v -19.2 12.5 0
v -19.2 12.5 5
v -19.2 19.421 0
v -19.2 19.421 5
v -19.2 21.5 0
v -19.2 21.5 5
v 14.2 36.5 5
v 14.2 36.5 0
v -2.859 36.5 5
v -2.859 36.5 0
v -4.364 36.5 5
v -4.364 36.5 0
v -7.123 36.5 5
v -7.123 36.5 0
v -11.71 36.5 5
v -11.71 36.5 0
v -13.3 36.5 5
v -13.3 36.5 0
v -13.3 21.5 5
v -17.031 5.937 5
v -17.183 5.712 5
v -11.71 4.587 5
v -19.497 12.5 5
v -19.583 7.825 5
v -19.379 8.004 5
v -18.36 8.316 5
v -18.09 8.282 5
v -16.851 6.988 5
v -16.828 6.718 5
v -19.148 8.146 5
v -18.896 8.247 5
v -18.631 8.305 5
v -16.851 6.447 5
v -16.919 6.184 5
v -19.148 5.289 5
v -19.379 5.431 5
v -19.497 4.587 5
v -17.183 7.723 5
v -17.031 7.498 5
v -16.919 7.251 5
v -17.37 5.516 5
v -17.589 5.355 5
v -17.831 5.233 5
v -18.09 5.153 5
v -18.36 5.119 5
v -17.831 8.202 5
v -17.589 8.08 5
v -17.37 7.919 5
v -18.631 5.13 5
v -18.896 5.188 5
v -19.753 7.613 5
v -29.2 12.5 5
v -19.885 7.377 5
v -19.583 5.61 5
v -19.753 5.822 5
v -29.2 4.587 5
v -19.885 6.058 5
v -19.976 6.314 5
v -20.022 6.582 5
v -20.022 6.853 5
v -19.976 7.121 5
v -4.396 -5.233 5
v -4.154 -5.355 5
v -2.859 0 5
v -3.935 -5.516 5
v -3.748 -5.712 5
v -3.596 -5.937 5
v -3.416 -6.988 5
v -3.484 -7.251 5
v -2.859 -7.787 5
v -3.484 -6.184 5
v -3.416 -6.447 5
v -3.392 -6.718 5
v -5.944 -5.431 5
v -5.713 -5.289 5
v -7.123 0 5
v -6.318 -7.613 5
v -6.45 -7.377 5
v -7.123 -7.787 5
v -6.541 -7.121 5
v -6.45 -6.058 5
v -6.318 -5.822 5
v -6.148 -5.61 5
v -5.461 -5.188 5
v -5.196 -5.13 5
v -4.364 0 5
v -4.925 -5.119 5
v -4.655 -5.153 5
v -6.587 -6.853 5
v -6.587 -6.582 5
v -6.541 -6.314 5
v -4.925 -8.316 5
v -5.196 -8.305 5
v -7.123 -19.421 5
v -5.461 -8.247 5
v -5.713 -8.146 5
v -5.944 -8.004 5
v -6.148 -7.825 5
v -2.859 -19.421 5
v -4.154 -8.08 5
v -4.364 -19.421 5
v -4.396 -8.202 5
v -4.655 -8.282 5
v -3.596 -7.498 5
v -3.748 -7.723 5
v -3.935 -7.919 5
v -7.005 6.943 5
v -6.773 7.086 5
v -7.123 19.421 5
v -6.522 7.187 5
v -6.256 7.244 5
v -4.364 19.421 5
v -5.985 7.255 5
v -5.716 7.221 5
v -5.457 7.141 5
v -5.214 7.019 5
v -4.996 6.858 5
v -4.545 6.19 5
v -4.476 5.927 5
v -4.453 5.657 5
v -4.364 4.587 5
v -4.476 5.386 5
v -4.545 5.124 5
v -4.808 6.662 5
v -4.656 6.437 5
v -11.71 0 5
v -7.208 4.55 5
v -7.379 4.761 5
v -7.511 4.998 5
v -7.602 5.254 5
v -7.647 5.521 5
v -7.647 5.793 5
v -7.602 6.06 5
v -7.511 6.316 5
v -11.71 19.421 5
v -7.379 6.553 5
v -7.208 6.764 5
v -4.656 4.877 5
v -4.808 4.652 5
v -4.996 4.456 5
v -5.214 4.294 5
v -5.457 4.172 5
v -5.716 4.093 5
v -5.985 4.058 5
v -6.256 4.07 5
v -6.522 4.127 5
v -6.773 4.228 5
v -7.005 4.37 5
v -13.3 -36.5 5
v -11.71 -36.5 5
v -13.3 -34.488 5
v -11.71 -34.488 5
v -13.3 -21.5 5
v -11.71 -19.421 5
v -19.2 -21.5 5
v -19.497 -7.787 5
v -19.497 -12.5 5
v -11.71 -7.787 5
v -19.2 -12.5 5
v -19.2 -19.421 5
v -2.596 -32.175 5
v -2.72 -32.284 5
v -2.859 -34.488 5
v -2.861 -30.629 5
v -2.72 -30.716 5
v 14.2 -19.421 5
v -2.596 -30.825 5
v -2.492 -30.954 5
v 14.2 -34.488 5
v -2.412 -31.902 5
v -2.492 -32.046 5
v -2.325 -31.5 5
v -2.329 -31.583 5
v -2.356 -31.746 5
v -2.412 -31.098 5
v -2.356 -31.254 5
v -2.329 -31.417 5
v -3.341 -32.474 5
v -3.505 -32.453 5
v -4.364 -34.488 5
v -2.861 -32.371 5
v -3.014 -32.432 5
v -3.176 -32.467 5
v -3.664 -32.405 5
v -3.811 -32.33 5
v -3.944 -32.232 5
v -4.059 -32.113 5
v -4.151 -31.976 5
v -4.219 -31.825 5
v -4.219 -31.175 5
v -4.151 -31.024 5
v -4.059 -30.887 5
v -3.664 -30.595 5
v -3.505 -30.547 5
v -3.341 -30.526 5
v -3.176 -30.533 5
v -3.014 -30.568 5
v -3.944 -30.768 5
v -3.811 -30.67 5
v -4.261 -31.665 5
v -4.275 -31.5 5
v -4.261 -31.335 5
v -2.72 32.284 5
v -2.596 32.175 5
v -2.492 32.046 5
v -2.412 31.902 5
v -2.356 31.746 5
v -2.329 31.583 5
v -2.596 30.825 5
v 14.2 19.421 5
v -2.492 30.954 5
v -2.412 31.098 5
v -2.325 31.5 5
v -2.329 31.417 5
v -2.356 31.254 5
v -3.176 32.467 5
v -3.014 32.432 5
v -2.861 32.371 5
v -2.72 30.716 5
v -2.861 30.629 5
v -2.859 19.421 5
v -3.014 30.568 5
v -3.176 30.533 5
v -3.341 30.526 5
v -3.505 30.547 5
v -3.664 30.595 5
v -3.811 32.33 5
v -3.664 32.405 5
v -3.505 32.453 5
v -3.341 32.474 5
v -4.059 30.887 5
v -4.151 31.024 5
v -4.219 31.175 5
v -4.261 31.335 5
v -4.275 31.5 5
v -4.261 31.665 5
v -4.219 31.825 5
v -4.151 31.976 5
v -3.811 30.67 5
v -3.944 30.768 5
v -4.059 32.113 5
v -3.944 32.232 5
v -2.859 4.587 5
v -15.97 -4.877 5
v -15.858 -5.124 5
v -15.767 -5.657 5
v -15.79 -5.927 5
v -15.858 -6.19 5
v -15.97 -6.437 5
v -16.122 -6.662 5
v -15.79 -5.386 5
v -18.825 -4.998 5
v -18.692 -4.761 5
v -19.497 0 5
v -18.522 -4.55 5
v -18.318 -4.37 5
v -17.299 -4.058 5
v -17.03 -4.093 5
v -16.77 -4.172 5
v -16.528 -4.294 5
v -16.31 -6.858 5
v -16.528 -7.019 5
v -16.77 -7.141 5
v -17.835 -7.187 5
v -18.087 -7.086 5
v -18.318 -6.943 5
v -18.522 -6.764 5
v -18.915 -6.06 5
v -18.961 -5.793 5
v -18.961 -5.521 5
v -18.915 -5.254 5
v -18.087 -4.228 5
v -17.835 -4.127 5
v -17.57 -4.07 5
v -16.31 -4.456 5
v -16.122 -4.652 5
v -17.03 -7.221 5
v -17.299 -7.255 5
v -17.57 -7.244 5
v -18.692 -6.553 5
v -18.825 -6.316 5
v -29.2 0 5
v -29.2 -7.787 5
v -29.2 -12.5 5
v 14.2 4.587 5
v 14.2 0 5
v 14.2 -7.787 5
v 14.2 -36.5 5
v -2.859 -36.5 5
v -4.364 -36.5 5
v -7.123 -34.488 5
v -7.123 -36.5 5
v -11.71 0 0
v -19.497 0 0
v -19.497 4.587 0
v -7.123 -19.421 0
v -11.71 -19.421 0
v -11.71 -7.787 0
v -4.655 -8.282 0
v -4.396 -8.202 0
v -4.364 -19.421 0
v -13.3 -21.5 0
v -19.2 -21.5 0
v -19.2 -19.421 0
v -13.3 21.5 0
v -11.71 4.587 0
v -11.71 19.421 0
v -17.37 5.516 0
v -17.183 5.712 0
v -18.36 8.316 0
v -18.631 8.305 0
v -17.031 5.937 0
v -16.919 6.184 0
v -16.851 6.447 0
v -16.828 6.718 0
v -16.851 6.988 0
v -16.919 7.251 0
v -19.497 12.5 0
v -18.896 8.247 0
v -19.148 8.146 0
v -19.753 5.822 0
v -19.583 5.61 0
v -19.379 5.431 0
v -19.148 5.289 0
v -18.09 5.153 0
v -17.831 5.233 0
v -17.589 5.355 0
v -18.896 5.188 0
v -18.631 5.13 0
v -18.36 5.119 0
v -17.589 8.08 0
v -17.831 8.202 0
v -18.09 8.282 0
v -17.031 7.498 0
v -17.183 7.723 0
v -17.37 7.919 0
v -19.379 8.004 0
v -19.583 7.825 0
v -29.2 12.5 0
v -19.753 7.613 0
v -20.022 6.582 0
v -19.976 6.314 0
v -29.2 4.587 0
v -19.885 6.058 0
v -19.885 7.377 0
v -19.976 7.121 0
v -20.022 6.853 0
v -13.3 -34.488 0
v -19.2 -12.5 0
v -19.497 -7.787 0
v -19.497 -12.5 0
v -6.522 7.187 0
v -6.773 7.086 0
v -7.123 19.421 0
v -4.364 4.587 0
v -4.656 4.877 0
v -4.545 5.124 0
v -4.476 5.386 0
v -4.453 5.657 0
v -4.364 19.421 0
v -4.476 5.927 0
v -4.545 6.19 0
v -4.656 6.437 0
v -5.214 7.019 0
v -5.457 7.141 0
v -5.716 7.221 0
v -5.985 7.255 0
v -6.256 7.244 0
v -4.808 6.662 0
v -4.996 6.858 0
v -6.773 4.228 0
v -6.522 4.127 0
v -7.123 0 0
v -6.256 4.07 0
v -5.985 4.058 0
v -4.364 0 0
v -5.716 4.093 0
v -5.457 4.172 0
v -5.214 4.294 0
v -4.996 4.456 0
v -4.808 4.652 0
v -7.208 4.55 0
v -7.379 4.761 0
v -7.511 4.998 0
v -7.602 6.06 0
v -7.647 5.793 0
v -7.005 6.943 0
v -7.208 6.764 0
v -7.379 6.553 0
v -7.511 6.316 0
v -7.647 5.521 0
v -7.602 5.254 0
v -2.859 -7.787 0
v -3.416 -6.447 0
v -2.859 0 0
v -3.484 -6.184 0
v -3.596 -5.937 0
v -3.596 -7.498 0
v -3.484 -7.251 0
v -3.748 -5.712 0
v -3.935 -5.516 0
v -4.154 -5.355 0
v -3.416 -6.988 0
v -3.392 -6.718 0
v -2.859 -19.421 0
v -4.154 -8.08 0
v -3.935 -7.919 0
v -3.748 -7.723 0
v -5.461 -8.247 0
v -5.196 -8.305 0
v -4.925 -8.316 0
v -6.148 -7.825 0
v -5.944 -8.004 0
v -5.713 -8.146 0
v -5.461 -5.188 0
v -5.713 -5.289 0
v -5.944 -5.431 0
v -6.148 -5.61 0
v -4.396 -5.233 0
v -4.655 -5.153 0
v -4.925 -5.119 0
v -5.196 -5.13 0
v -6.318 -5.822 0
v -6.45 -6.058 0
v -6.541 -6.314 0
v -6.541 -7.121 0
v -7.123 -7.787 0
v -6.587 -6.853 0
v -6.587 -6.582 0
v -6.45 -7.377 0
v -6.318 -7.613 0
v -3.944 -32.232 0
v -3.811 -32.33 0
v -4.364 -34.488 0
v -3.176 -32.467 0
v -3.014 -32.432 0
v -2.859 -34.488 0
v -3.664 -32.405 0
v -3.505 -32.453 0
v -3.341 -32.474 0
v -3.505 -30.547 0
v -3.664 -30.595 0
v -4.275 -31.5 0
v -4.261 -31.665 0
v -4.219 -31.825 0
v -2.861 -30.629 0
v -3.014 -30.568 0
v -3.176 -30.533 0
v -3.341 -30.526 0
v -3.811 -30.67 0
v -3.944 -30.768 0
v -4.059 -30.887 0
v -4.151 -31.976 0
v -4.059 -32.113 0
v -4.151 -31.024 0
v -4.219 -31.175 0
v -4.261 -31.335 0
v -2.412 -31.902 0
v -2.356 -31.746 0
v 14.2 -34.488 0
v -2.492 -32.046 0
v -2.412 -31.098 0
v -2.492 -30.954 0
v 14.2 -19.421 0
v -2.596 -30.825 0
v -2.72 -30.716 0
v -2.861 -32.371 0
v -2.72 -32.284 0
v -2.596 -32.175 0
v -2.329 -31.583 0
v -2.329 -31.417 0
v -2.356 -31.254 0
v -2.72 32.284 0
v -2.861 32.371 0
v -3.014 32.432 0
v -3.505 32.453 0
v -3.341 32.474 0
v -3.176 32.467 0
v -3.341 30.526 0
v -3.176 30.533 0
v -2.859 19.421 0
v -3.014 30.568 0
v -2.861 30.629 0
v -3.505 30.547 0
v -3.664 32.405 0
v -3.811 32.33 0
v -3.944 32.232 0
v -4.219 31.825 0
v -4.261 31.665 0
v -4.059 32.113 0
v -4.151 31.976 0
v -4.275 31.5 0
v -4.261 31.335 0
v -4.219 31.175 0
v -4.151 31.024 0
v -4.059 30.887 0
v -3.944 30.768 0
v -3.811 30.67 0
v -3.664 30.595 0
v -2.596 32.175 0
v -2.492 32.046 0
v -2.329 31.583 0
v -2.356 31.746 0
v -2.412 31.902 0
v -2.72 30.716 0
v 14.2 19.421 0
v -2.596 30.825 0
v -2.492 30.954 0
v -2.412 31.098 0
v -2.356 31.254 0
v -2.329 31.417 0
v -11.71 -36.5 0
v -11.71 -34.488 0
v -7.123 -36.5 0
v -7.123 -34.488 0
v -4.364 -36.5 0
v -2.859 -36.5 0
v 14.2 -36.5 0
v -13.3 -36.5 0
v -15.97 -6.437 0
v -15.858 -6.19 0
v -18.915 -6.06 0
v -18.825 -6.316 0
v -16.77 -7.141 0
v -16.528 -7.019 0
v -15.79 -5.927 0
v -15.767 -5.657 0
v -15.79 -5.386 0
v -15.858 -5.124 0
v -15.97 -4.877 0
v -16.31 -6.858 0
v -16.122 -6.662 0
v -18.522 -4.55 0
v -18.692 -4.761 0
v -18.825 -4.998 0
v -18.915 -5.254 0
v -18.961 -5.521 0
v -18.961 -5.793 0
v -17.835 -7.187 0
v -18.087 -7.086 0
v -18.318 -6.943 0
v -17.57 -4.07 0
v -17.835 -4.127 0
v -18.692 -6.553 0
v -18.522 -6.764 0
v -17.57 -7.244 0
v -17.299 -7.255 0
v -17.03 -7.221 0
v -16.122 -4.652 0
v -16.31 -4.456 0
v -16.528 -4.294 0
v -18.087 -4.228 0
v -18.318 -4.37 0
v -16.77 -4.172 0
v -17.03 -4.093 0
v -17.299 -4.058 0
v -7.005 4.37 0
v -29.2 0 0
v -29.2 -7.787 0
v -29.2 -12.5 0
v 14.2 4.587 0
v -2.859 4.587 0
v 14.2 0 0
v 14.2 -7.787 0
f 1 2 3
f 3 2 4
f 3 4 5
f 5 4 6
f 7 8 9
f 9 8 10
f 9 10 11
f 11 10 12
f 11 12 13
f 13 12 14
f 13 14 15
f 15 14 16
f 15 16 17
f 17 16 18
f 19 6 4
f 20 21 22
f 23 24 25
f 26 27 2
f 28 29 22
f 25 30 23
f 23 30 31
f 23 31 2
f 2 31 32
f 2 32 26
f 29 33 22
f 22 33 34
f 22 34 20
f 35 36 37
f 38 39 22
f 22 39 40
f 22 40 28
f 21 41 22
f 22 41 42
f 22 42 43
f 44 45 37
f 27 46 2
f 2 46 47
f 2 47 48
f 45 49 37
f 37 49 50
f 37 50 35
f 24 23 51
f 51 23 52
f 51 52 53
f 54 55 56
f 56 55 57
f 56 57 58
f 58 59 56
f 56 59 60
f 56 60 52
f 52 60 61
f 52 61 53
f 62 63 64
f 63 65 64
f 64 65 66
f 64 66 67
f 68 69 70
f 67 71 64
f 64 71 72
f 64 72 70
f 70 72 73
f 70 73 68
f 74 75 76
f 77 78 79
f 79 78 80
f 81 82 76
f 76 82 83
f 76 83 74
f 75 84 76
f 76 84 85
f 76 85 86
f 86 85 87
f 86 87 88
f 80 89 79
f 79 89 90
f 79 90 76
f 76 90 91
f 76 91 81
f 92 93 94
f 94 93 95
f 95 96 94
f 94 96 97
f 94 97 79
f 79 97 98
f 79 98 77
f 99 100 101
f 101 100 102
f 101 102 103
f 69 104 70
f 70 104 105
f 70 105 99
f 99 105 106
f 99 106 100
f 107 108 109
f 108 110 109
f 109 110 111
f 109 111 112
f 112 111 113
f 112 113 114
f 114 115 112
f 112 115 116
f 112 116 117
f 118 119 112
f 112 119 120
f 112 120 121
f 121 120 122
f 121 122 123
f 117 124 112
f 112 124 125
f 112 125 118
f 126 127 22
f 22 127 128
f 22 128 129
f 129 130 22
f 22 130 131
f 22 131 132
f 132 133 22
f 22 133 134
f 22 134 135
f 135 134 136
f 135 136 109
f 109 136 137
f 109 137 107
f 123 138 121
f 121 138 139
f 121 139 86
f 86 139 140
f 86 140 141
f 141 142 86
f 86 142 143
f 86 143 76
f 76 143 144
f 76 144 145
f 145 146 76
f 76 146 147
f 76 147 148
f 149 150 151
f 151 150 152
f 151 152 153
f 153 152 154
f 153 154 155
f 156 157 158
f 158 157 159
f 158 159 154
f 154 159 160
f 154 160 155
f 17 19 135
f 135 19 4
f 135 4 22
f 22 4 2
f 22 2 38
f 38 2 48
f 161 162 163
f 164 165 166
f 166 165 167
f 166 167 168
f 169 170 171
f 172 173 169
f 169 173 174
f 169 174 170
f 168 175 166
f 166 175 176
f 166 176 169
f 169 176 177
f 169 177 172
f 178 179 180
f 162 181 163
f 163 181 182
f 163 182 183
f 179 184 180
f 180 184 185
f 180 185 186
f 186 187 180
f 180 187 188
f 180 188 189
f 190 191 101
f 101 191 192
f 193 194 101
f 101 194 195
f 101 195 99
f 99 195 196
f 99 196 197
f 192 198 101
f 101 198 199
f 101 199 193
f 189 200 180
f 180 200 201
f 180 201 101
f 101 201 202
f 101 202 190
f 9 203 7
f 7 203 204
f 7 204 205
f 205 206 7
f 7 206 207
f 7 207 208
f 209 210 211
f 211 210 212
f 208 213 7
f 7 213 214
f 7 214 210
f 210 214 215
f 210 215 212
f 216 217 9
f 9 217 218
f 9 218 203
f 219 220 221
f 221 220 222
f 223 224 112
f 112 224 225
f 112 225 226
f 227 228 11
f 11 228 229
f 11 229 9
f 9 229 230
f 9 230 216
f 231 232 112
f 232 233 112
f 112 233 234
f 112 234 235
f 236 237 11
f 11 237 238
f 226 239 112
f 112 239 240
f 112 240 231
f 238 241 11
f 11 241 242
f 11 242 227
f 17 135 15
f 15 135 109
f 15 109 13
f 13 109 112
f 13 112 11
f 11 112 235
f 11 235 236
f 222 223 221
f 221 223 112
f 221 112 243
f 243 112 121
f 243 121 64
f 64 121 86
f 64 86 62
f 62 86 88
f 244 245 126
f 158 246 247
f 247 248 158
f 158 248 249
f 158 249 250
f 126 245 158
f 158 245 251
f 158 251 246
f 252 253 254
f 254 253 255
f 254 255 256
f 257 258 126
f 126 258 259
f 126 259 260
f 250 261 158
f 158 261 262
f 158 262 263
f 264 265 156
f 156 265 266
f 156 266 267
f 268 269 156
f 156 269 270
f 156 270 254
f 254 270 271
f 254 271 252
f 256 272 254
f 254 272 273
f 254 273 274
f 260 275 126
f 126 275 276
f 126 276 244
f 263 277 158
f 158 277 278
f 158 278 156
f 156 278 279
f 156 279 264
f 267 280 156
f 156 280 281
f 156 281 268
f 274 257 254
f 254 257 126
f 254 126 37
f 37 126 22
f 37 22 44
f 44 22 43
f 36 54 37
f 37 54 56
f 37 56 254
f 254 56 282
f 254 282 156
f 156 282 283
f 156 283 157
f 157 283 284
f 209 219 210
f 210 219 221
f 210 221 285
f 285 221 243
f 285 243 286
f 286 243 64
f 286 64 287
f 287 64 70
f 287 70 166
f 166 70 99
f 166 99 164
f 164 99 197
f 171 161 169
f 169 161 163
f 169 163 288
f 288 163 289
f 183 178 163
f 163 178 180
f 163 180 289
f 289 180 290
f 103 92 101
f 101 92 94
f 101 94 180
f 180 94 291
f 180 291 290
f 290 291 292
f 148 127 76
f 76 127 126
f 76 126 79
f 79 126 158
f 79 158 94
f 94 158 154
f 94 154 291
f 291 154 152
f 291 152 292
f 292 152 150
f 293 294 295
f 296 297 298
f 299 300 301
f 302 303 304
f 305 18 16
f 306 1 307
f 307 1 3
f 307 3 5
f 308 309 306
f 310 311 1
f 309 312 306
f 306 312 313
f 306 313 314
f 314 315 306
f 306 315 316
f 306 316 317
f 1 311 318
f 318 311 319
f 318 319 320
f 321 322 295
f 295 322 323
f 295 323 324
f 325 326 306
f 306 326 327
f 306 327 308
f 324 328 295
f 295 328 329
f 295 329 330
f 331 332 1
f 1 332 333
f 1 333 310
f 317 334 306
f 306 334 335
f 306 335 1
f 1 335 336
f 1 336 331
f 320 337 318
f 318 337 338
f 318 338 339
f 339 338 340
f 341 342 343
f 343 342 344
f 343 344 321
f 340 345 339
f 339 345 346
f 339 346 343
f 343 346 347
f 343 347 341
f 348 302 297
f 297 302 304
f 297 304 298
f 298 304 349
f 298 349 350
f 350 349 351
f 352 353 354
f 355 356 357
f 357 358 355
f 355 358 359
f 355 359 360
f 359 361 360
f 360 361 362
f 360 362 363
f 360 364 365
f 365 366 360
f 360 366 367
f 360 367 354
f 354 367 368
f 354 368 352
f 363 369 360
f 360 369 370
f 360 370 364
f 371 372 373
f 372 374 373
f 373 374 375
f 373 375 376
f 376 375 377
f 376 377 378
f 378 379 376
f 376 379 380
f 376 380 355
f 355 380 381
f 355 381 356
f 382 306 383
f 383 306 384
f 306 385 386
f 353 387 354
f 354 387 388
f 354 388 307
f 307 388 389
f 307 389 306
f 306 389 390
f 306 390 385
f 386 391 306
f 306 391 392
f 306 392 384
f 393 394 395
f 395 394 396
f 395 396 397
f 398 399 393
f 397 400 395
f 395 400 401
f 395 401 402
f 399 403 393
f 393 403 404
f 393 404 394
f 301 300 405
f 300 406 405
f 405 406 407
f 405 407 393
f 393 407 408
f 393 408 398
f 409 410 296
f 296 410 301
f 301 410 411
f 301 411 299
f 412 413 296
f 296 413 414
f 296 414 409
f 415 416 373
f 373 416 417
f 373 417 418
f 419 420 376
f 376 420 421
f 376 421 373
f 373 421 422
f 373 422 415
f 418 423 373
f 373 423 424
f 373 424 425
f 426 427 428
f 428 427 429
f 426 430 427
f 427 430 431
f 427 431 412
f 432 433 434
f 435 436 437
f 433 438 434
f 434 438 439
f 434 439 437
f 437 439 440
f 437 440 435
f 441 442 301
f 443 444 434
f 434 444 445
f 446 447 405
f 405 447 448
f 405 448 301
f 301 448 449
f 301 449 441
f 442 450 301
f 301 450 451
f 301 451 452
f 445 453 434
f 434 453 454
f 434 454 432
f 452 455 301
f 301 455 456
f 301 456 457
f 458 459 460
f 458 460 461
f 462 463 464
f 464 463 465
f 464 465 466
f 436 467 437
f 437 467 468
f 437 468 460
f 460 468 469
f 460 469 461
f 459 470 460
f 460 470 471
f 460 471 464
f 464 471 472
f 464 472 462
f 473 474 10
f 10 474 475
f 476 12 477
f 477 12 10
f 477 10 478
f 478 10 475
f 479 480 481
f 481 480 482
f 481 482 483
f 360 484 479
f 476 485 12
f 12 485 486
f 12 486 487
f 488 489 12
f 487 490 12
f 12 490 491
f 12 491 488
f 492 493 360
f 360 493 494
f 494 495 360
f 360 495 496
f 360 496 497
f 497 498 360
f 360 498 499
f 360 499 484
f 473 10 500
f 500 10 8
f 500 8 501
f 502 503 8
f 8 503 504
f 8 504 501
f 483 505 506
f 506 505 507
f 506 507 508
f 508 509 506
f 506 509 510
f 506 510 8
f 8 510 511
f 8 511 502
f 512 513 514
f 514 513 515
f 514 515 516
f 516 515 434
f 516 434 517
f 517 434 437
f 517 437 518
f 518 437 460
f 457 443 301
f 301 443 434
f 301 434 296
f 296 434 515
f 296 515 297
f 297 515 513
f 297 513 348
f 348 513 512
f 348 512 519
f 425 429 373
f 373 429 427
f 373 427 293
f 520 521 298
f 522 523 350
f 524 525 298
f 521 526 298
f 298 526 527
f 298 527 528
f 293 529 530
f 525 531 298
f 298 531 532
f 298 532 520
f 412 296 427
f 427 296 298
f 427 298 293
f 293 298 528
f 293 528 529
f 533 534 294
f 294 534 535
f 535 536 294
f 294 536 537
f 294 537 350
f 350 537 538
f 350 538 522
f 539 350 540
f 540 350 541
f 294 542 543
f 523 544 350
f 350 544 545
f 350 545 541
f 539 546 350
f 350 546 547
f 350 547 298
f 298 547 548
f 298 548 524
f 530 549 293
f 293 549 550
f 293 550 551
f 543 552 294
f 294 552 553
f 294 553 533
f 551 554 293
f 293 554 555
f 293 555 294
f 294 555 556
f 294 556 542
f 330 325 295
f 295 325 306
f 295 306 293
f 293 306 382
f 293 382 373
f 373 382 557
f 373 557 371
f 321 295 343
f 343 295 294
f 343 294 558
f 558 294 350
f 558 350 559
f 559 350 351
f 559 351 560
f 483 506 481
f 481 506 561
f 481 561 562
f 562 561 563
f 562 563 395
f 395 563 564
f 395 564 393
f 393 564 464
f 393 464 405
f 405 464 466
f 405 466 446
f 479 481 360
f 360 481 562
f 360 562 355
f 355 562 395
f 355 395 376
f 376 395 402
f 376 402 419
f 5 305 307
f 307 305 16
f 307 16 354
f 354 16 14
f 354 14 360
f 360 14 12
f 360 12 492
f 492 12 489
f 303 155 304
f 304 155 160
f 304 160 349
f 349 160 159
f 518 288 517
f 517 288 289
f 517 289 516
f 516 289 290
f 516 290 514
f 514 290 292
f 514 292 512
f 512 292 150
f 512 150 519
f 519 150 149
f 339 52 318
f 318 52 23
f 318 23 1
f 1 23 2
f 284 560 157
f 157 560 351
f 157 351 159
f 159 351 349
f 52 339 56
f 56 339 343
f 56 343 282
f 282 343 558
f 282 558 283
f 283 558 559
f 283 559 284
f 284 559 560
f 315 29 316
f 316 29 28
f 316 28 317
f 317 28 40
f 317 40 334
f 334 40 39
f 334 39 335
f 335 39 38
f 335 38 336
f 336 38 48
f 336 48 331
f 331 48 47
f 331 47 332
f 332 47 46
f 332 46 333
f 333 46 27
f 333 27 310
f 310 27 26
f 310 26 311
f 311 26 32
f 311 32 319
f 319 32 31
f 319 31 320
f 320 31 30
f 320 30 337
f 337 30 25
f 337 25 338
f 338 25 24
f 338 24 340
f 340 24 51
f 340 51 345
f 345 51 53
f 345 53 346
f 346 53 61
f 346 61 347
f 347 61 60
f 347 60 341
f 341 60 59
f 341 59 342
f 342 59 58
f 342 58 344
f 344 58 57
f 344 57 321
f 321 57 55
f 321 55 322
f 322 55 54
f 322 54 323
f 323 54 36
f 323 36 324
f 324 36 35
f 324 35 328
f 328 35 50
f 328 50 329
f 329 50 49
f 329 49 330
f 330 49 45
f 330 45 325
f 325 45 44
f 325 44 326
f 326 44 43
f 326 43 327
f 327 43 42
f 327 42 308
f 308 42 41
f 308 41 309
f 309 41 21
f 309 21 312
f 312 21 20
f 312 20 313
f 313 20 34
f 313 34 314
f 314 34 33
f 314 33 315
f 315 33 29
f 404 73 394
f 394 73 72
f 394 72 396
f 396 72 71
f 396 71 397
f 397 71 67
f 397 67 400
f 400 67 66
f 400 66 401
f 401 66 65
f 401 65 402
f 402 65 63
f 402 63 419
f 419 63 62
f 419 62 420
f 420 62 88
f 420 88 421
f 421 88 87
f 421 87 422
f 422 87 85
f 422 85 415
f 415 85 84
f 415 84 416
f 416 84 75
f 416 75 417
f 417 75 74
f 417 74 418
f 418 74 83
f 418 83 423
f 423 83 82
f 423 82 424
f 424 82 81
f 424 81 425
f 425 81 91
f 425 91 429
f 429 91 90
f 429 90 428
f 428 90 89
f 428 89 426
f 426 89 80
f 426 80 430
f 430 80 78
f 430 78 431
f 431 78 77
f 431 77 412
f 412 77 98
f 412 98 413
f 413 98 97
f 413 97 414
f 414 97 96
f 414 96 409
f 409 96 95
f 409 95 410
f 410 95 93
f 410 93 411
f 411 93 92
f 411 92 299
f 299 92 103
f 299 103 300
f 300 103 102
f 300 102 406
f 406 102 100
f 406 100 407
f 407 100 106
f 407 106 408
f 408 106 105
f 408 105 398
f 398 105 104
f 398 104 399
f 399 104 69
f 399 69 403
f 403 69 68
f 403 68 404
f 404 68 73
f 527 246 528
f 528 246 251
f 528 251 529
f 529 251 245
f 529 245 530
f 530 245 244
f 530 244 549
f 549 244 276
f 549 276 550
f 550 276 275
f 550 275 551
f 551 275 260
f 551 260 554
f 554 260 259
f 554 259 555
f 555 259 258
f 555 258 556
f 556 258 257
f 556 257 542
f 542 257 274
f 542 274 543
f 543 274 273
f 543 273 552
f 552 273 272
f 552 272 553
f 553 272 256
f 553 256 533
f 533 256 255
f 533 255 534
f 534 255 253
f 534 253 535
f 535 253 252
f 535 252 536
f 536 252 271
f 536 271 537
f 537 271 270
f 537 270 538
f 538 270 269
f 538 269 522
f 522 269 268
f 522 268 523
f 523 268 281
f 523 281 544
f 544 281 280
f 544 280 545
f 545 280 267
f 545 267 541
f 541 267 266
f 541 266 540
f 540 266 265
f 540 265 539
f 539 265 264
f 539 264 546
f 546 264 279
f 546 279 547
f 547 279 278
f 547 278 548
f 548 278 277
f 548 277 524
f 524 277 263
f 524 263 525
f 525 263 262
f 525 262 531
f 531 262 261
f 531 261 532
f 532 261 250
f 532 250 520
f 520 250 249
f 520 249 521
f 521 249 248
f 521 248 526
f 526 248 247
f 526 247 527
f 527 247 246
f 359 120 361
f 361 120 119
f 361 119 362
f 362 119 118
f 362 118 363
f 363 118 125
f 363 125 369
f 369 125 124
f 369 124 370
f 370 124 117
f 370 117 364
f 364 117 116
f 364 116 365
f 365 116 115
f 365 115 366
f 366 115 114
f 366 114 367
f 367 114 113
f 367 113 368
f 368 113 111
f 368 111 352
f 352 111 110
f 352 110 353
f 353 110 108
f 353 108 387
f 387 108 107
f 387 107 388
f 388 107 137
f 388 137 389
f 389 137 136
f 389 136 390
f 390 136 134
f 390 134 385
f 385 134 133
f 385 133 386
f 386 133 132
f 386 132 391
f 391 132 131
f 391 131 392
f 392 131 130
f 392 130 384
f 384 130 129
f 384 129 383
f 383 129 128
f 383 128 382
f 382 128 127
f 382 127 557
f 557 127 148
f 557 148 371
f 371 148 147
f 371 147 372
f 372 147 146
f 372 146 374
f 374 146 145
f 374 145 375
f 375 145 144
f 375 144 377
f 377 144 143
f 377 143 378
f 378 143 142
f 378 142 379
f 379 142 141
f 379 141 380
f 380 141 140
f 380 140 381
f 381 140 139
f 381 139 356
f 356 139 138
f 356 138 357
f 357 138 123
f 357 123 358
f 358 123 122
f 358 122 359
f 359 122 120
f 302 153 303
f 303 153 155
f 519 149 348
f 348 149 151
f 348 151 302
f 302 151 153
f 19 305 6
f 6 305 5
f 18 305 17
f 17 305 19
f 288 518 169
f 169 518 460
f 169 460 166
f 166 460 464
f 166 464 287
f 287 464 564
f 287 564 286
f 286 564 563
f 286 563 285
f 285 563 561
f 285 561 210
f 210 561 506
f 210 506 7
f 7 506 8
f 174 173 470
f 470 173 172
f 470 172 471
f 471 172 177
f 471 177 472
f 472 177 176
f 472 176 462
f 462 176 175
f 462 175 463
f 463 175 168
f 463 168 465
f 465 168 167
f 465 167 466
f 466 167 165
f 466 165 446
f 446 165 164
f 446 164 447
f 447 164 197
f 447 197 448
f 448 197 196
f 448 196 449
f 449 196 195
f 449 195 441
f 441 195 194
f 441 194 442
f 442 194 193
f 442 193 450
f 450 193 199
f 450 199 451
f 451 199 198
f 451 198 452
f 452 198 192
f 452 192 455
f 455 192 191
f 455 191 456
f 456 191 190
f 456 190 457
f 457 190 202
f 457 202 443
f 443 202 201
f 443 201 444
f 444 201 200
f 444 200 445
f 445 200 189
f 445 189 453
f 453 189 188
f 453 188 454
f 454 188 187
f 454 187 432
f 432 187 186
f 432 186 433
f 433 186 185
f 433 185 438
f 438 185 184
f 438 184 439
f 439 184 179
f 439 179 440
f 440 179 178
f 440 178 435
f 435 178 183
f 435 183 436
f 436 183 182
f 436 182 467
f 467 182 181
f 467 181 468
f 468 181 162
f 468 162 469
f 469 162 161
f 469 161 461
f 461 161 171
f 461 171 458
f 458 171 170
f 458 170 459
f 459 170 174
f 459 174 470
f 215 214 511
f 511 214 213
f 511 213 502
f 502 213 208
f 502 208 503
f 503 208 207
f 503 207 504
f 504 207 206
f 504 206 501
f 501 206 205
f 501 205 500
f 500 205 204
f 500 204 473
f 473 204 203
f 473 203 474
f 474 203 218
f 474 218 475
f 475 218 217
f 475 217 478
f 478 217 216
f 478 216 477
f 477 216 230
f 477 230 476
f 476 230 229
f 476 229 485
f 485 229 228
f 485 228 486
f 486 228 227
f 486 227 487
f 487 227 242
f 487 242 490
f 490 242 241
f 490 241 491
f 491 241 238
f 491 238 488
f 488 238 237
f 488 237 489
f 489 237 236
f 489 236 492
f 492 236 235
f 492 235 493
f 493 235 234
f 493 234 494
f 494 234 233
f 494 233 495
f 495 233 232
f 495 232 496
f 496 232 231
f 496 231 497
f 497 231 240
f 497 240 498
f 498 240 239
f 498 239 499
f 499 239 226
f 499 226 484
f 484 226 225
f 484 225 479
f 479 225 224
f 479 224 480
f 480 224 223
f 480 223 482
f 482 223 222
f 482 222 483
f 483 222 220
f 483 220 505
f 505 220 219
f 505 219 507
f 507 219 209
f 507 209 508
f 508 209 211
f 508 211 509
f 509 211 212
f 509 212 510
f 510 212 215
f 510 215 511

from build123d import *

# Parameters (mm, degrees)
SKETCH1_W           = 38.4
SKETCH1_H           = 73
BOSS_EXTRUDE1_DEPTH = 5
SKETCH4_W           = 5
SKETCH4_H           = 25
BOSS_EXTRUDE3_DEPTH = 10
SKETCH5_R           = 1.6
CUT_EXTRUDE1_DEPTH  = 25
SKETCH6_W           = 5
SKETCH6_H           = 15
CUT_EXTRUDE2_DEPTH  = 5.9
SKETCH8_W           = 5
SKETCH8_H           = 73
CUT_EXTRUDE3_DEPTH  = 10
SKETCH9_R           = 0.975
CUT_EXTRUDE4_DEPTH  = 13


with BuildPart() as part:
    # Sketch1 → Boss-Extrude1 (new body)
    with BuildSketch(Plane.XY):
        Rectangle(SKETCH1_W, SKETCH1_H)
    extrude(amount=BOSS_EXTRUDE1_DEPTH)

    # Sketch4 → Boss-Extrude3 (add)
    with BuildSketch(Plane.ZY.offset(19.2)):
        with Locations((2.5, 0)):
            Rectangle(SKETCH4_W, SKETCH4_H)
    extrude(amount=BOSS_EXTRUDE3_DEPTH)

    # Sketch5 → Cut-Extrude1 (cut)
    with BuildSketch(Plane.XY.offset(5)):
        with Locations((-18.427514421, 6.717514421)):
            Circle(SKETCH5_R)
        with Locations((-6.053145751, 5.656854249)):
            Circle(SKETCH5_R)
        with Locations((-17.366854249, -5.656854249)):
            Circle(SKETCH5_R)
        with Locations((-4.992485579, -6.717514421)):
            Circle(SKETCH5_R)
    extrude(amount=-CUT_EXTRUDE1_DEPTH, mode=Mode.SUBTRACT)

    # Sketch6 → Cut-Extrude2 (cut)
    with BuildSketch(Plane.ZY.offset(19.2)):
        with Locations((2.5, 29)):
            Rectangle(SKETCH6_W, SKETCH6_H)
        with Locations((2.5, -29)):
            Rectangle(SKETCH6_W, SKETCH6_H)
    extrude(amount=-CUT_EXTRUDE2_DEPTH, mode=Mode.SUBTRACT)

    # Sketch8 → Cut-Extrude3 (cut)
    with BuildSketch(Plane(origin=(0, 0, 0), x_dir=(-1, 0, 0), z_dir=(0, 0, -1))):
        with Locations((-16.7, 0)):
            Rectangle(SKETCH8_W, SKETCH8_H)
    extrude(amount=-CUT_EXTRUDE3_DEPTH, mode=Mode.SUBTRACT)

    # Sketch9 → Cut-Extrude4 (cut)
    with BuildSketch(Plane(origin=(0, 0, 0), x_dir=(-1, 0, 0), z_dir=(0, 0, -1))):
        with Locations((3.3, 31.5)):
            Circle(SKETCH9_R)
        with Locations((3.3, -31.5)):
            Circle(SKETCH9_R)
    extrude(amount=-CUT_EXTRUDE4_DEPTH, mode=Mode.SUBTRACT)


solid = part.part
